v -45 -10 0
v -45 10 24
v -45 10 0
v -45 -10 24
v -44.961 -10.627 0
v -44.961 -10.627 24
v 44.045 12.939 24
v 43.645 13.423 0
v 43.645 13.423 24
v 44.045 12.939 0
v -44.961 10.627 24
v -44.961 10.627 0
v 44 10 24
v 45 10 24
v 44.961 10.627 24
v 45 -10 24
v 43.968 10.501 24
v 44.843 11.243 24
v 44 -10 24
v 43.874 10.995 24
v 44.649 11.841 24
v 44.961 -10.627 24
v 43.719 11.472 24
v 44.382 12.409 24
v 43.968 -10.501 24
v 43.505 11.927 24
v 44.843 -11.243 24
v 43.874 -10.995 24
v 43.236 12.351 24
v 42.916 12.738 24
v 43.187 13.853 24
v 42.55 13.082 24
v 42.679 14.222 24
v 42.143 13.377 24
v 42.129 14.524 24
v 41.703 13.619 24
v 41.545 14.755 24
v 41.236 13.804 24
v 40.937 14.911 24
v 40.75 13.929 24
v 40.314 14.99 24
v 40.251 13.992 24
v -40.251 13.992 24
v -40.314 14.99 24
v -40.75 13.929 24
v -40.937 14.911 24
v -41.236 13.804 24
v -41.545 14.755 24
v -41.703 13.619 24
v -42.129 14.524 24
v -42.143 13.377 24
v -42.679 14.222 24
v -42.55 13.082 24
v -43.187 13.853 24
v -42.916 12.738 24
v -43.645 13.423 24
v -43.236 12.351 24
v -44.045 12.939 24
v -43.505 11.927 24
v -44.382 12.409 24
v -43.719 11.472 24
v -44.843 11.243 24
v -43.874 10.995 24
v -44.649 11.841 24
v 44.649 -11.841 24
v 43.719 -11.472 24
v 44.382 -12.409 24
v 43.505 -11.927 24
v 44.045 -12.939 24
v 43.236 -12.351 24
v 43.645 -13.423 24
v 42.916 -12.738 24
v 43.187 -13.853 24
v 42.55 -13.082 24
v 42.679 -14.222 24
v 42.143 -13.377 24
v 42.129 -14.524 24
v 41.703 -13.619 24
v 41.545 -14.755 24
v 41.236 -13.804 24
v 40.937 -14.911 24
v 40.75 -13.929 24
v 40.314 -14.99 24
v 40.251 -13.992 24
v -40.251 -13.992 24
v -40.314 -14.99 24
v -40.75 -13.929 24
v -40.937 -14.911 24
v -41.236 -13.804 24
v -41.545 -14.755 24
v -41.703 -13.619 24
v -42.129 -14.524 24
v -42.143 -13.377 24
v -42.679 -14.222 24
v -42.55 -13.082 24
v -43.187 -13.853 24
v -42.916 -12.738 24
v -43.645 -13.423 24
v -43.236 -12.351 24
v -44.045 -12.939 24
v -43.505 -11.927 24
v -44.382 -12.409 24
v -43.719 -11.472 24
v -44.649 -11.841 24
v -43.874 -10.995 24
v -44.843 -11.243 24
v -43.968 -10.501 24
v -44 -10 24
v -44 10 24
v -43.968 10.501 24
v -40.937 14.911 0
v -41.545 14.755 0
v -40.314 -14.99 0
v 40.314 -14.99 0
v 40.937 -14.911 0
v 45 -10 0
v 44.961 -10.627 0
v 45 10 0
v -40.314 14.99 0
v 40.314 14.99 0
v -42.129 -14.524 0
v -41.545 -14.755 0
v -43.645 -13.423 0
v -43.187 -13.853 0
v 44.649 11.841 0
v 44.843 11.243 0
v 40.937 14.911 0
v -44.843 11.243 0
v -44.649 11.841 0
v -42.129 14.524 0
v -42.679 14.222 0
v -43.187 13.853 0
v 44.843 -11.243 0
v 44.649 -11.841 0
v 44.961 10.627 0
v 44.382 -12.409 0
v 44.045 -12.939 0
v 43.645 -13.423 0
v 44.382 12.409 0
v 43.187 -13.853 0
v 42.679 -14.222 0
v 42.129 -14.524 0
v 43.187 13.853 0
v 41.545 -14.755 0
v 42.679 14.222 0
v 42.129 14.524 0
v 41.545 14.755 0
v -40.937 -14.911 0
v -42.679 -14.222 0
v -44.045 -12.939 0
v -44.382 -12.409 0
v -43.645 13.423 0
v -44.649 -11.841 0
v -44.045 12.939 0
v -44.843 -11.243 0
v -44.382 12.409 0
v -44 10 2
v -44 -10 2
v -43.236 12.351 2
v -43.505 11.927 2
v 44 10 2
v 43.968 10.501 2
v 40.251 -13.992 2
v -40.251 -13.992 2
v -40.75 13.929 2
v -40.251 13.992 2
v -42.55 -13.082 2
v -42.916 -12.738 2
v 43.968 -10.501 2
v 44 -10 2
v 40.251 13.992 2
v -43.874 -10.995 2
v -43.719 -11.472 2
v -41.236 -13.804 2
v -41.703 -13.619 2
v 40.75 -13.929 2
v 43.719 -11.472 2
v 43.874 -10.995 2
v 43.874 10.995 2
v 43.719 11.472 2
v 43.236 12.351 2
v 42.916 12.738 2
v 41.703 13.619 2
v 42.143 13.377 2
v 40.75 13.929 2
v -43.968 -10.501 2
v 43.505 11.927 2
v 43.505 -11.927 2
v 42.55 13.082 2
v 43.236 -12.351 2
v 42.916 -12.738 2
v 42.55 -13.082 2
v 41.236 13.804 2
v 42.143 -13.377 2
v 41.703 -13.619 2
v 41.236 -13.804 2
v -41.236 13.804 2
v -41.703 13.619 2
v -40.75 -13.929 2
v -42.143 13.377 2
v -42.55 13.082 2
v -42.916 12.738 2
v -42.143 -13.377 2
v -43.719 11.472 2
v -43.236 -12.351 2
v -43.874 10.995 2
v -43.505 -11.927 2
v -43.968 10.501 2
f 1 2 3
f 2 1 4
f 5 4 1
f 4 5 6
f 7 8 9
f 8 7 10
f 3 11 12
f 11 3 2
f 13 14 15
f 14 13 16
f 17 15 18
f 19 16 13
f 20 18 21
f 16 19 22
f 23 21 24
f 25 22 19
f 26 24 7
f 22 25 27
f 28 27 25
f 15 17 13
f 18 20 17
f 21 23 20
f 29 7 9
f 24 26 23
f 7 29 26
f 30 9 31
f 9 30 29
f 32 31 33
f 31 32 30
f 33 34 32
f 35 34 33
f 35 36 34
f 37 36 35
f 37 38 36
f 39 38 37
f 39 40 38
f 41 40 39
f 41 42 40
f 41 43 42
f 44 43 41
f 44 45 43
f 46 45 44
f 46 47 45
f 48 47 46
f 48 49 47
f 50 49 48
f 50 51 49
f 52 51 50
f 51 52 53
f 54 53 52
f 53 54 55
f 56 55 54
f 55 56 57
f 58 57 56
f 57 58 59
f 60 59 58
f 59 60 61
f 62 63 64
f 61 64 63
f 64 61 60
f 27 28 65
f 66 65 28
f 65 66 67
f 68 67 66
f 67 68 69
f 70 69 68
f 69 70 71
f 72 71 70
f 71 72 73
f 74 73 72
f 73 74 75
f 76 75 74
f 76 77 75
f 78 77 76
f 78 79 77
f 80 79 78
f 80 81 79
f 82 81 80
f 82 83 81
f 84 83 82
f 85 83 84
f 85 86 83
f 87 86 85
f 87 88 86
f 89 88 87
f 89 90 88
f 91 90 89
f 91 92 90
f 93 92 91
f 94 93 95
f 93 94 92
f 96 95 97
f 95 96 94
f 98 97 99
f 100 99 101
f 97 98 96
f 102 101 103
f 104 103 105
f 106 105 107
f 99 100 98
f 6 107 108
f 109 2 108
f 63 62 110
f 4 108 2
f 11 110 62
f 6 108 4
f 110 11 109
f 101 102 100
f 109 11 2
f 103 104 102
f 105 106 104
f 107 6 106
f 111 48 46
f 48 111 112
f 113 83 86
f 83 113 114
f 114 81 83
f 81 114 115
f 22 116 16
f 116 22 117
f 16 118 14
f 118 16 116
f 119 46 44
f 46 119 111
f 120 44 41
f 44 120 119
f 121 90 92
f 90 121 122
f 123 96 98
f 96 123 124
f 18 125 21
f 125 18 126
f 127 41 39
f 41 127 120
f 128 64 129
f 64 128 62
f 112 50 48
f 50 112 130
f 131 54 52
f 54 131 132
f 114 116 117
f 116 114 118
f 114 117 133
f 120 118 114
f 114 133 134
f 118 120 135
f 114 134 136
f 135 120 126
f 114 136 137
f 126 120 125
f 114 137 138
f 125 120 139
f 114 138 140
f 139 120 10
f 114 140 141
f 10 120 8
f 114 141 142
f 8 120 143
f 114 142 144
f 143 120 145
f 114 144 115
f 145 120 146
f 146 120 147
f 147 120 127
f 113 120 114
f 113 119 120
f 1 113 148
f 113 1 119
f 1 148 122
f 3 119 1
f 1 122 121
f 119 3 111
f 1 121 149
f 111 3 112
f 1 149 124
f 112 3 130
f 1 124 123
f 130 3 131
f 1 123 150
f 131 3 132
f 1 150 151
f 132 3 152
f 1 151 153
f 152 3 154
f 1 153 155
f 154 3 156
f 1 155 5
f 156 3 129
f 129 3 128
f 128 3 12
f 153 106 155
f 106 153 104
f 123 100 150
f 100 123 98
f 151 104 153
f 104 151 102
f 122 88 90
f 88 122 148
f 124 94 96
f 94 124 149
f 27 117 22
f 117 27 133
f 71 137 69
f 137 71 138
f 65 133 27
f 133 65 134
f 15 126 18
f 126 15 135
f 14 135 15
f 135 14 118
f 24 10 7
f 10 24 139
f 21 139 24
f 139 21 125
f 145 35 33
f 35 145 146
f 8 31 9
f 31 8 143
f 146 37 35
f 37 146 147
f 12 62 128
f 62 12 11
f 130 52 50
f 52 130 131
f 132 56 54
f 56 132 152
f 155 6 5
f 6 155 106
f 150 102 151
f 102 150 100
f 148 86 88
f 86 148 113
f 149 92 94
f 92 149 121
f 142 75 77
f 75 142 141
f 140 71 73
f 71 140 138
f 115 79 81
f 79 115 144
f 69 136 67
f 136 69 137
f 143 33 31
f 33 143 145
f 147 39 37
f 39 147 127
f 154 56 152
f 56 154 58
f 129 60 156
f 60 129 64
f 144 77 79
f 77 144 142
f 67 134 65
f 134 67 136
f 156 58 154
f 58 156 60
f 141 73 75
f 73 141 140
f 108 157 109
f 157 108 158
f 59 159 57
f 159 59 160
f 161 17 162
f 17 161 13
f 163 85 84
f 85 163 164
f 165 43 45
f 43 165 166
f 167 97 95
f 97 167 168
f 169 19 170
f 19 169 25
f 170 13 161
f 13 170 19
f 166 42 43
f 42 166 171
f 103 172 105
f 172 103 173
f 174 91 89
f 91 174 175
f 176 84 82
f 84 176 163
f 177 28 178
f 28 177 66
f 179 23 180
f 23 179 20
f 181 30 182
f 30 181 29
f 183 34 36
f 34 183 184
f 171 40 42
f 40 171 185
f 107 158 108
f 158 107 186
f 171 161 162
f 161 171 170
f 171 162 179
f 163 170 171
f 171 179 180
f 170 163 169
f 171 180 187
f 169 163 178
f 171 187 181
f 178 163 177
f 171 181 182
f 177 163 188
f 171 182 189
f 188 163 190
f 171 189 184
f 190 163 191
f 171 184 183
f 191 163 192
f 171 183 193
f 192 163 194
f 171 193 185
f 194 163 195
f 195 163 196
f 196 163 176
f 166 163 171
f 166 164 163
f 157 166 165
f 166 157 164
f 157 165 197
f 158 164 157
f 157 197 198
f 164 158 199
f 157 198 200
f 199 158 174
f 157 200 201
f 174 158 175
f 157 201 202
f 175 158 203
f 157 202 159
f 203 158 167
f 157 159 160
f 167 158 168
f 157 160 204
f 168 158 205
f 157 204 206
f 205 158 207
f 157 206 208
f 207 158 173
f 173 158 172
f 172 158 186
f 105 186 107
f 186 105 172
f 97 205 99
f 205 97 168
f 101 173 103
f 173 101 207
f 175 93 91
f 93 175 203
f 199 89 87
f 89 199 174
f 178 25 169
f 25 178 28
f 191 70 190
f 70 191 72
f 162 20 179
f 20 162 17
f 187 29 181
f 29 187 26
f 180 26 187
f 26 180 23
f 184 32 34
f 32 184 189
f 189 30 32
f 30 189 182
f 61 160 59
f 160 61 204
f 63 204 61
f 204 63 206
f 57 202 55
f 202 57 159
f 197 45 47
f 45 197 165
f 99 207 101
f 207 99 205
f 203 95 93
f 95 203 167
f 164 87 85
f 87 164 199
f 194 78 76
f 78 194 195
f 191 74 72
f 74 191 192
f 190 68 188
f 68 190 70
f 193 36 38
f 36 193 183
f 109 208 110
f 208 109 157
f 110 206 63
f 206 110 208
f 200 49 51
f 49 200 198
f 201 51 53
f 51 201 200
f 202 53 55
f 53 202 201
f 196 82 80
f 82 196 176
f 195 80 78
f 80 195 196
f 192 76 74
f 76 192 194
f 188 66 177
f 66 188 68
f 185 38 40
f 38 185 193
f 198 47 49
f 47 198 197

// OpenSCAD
$fn = 50;


difference() {
	union() {
		hull() {
			translate(v = [-40.0000000000, 10.0000000000, 0]) {
				cylinder(h = 24, r = 5);
			}
			translate(v = [40.0000000000, 10.0000000000, 0]) {
				cylinder(h = 24, r = 5);
			}
			translate(v = [-40.0000000000, -10.0000000000, 0]) {
				cylinder(h = 24, r = 5);
			}
			translate(v = [40.0000000000, -10.0000000000, 0]) {
				cylinder(h = 24, r = 5);
			}
		}
	}
	union() {
		translate(v = [0, 0, 2]) {
			#hull() {
				translate(v = [-40.0000000000, 10.0000000000, 0]) {
					cylinder(h = 22, r = 4);
				}
				translate(v = [40.0000000000, 10.0000000000, 0]) {
					cylinder(h = 22, r = 4);
				}
				translate(v = [-40.0000000000, -10.0000000000, 0]) {
					cylinder(h = 22, r = 4);
				}
				translate(v = [40.0000000000, -10.0000000000, 0]) {
					cylinder(h = 22, r = 4);
				}
			}
		}
	}
}
